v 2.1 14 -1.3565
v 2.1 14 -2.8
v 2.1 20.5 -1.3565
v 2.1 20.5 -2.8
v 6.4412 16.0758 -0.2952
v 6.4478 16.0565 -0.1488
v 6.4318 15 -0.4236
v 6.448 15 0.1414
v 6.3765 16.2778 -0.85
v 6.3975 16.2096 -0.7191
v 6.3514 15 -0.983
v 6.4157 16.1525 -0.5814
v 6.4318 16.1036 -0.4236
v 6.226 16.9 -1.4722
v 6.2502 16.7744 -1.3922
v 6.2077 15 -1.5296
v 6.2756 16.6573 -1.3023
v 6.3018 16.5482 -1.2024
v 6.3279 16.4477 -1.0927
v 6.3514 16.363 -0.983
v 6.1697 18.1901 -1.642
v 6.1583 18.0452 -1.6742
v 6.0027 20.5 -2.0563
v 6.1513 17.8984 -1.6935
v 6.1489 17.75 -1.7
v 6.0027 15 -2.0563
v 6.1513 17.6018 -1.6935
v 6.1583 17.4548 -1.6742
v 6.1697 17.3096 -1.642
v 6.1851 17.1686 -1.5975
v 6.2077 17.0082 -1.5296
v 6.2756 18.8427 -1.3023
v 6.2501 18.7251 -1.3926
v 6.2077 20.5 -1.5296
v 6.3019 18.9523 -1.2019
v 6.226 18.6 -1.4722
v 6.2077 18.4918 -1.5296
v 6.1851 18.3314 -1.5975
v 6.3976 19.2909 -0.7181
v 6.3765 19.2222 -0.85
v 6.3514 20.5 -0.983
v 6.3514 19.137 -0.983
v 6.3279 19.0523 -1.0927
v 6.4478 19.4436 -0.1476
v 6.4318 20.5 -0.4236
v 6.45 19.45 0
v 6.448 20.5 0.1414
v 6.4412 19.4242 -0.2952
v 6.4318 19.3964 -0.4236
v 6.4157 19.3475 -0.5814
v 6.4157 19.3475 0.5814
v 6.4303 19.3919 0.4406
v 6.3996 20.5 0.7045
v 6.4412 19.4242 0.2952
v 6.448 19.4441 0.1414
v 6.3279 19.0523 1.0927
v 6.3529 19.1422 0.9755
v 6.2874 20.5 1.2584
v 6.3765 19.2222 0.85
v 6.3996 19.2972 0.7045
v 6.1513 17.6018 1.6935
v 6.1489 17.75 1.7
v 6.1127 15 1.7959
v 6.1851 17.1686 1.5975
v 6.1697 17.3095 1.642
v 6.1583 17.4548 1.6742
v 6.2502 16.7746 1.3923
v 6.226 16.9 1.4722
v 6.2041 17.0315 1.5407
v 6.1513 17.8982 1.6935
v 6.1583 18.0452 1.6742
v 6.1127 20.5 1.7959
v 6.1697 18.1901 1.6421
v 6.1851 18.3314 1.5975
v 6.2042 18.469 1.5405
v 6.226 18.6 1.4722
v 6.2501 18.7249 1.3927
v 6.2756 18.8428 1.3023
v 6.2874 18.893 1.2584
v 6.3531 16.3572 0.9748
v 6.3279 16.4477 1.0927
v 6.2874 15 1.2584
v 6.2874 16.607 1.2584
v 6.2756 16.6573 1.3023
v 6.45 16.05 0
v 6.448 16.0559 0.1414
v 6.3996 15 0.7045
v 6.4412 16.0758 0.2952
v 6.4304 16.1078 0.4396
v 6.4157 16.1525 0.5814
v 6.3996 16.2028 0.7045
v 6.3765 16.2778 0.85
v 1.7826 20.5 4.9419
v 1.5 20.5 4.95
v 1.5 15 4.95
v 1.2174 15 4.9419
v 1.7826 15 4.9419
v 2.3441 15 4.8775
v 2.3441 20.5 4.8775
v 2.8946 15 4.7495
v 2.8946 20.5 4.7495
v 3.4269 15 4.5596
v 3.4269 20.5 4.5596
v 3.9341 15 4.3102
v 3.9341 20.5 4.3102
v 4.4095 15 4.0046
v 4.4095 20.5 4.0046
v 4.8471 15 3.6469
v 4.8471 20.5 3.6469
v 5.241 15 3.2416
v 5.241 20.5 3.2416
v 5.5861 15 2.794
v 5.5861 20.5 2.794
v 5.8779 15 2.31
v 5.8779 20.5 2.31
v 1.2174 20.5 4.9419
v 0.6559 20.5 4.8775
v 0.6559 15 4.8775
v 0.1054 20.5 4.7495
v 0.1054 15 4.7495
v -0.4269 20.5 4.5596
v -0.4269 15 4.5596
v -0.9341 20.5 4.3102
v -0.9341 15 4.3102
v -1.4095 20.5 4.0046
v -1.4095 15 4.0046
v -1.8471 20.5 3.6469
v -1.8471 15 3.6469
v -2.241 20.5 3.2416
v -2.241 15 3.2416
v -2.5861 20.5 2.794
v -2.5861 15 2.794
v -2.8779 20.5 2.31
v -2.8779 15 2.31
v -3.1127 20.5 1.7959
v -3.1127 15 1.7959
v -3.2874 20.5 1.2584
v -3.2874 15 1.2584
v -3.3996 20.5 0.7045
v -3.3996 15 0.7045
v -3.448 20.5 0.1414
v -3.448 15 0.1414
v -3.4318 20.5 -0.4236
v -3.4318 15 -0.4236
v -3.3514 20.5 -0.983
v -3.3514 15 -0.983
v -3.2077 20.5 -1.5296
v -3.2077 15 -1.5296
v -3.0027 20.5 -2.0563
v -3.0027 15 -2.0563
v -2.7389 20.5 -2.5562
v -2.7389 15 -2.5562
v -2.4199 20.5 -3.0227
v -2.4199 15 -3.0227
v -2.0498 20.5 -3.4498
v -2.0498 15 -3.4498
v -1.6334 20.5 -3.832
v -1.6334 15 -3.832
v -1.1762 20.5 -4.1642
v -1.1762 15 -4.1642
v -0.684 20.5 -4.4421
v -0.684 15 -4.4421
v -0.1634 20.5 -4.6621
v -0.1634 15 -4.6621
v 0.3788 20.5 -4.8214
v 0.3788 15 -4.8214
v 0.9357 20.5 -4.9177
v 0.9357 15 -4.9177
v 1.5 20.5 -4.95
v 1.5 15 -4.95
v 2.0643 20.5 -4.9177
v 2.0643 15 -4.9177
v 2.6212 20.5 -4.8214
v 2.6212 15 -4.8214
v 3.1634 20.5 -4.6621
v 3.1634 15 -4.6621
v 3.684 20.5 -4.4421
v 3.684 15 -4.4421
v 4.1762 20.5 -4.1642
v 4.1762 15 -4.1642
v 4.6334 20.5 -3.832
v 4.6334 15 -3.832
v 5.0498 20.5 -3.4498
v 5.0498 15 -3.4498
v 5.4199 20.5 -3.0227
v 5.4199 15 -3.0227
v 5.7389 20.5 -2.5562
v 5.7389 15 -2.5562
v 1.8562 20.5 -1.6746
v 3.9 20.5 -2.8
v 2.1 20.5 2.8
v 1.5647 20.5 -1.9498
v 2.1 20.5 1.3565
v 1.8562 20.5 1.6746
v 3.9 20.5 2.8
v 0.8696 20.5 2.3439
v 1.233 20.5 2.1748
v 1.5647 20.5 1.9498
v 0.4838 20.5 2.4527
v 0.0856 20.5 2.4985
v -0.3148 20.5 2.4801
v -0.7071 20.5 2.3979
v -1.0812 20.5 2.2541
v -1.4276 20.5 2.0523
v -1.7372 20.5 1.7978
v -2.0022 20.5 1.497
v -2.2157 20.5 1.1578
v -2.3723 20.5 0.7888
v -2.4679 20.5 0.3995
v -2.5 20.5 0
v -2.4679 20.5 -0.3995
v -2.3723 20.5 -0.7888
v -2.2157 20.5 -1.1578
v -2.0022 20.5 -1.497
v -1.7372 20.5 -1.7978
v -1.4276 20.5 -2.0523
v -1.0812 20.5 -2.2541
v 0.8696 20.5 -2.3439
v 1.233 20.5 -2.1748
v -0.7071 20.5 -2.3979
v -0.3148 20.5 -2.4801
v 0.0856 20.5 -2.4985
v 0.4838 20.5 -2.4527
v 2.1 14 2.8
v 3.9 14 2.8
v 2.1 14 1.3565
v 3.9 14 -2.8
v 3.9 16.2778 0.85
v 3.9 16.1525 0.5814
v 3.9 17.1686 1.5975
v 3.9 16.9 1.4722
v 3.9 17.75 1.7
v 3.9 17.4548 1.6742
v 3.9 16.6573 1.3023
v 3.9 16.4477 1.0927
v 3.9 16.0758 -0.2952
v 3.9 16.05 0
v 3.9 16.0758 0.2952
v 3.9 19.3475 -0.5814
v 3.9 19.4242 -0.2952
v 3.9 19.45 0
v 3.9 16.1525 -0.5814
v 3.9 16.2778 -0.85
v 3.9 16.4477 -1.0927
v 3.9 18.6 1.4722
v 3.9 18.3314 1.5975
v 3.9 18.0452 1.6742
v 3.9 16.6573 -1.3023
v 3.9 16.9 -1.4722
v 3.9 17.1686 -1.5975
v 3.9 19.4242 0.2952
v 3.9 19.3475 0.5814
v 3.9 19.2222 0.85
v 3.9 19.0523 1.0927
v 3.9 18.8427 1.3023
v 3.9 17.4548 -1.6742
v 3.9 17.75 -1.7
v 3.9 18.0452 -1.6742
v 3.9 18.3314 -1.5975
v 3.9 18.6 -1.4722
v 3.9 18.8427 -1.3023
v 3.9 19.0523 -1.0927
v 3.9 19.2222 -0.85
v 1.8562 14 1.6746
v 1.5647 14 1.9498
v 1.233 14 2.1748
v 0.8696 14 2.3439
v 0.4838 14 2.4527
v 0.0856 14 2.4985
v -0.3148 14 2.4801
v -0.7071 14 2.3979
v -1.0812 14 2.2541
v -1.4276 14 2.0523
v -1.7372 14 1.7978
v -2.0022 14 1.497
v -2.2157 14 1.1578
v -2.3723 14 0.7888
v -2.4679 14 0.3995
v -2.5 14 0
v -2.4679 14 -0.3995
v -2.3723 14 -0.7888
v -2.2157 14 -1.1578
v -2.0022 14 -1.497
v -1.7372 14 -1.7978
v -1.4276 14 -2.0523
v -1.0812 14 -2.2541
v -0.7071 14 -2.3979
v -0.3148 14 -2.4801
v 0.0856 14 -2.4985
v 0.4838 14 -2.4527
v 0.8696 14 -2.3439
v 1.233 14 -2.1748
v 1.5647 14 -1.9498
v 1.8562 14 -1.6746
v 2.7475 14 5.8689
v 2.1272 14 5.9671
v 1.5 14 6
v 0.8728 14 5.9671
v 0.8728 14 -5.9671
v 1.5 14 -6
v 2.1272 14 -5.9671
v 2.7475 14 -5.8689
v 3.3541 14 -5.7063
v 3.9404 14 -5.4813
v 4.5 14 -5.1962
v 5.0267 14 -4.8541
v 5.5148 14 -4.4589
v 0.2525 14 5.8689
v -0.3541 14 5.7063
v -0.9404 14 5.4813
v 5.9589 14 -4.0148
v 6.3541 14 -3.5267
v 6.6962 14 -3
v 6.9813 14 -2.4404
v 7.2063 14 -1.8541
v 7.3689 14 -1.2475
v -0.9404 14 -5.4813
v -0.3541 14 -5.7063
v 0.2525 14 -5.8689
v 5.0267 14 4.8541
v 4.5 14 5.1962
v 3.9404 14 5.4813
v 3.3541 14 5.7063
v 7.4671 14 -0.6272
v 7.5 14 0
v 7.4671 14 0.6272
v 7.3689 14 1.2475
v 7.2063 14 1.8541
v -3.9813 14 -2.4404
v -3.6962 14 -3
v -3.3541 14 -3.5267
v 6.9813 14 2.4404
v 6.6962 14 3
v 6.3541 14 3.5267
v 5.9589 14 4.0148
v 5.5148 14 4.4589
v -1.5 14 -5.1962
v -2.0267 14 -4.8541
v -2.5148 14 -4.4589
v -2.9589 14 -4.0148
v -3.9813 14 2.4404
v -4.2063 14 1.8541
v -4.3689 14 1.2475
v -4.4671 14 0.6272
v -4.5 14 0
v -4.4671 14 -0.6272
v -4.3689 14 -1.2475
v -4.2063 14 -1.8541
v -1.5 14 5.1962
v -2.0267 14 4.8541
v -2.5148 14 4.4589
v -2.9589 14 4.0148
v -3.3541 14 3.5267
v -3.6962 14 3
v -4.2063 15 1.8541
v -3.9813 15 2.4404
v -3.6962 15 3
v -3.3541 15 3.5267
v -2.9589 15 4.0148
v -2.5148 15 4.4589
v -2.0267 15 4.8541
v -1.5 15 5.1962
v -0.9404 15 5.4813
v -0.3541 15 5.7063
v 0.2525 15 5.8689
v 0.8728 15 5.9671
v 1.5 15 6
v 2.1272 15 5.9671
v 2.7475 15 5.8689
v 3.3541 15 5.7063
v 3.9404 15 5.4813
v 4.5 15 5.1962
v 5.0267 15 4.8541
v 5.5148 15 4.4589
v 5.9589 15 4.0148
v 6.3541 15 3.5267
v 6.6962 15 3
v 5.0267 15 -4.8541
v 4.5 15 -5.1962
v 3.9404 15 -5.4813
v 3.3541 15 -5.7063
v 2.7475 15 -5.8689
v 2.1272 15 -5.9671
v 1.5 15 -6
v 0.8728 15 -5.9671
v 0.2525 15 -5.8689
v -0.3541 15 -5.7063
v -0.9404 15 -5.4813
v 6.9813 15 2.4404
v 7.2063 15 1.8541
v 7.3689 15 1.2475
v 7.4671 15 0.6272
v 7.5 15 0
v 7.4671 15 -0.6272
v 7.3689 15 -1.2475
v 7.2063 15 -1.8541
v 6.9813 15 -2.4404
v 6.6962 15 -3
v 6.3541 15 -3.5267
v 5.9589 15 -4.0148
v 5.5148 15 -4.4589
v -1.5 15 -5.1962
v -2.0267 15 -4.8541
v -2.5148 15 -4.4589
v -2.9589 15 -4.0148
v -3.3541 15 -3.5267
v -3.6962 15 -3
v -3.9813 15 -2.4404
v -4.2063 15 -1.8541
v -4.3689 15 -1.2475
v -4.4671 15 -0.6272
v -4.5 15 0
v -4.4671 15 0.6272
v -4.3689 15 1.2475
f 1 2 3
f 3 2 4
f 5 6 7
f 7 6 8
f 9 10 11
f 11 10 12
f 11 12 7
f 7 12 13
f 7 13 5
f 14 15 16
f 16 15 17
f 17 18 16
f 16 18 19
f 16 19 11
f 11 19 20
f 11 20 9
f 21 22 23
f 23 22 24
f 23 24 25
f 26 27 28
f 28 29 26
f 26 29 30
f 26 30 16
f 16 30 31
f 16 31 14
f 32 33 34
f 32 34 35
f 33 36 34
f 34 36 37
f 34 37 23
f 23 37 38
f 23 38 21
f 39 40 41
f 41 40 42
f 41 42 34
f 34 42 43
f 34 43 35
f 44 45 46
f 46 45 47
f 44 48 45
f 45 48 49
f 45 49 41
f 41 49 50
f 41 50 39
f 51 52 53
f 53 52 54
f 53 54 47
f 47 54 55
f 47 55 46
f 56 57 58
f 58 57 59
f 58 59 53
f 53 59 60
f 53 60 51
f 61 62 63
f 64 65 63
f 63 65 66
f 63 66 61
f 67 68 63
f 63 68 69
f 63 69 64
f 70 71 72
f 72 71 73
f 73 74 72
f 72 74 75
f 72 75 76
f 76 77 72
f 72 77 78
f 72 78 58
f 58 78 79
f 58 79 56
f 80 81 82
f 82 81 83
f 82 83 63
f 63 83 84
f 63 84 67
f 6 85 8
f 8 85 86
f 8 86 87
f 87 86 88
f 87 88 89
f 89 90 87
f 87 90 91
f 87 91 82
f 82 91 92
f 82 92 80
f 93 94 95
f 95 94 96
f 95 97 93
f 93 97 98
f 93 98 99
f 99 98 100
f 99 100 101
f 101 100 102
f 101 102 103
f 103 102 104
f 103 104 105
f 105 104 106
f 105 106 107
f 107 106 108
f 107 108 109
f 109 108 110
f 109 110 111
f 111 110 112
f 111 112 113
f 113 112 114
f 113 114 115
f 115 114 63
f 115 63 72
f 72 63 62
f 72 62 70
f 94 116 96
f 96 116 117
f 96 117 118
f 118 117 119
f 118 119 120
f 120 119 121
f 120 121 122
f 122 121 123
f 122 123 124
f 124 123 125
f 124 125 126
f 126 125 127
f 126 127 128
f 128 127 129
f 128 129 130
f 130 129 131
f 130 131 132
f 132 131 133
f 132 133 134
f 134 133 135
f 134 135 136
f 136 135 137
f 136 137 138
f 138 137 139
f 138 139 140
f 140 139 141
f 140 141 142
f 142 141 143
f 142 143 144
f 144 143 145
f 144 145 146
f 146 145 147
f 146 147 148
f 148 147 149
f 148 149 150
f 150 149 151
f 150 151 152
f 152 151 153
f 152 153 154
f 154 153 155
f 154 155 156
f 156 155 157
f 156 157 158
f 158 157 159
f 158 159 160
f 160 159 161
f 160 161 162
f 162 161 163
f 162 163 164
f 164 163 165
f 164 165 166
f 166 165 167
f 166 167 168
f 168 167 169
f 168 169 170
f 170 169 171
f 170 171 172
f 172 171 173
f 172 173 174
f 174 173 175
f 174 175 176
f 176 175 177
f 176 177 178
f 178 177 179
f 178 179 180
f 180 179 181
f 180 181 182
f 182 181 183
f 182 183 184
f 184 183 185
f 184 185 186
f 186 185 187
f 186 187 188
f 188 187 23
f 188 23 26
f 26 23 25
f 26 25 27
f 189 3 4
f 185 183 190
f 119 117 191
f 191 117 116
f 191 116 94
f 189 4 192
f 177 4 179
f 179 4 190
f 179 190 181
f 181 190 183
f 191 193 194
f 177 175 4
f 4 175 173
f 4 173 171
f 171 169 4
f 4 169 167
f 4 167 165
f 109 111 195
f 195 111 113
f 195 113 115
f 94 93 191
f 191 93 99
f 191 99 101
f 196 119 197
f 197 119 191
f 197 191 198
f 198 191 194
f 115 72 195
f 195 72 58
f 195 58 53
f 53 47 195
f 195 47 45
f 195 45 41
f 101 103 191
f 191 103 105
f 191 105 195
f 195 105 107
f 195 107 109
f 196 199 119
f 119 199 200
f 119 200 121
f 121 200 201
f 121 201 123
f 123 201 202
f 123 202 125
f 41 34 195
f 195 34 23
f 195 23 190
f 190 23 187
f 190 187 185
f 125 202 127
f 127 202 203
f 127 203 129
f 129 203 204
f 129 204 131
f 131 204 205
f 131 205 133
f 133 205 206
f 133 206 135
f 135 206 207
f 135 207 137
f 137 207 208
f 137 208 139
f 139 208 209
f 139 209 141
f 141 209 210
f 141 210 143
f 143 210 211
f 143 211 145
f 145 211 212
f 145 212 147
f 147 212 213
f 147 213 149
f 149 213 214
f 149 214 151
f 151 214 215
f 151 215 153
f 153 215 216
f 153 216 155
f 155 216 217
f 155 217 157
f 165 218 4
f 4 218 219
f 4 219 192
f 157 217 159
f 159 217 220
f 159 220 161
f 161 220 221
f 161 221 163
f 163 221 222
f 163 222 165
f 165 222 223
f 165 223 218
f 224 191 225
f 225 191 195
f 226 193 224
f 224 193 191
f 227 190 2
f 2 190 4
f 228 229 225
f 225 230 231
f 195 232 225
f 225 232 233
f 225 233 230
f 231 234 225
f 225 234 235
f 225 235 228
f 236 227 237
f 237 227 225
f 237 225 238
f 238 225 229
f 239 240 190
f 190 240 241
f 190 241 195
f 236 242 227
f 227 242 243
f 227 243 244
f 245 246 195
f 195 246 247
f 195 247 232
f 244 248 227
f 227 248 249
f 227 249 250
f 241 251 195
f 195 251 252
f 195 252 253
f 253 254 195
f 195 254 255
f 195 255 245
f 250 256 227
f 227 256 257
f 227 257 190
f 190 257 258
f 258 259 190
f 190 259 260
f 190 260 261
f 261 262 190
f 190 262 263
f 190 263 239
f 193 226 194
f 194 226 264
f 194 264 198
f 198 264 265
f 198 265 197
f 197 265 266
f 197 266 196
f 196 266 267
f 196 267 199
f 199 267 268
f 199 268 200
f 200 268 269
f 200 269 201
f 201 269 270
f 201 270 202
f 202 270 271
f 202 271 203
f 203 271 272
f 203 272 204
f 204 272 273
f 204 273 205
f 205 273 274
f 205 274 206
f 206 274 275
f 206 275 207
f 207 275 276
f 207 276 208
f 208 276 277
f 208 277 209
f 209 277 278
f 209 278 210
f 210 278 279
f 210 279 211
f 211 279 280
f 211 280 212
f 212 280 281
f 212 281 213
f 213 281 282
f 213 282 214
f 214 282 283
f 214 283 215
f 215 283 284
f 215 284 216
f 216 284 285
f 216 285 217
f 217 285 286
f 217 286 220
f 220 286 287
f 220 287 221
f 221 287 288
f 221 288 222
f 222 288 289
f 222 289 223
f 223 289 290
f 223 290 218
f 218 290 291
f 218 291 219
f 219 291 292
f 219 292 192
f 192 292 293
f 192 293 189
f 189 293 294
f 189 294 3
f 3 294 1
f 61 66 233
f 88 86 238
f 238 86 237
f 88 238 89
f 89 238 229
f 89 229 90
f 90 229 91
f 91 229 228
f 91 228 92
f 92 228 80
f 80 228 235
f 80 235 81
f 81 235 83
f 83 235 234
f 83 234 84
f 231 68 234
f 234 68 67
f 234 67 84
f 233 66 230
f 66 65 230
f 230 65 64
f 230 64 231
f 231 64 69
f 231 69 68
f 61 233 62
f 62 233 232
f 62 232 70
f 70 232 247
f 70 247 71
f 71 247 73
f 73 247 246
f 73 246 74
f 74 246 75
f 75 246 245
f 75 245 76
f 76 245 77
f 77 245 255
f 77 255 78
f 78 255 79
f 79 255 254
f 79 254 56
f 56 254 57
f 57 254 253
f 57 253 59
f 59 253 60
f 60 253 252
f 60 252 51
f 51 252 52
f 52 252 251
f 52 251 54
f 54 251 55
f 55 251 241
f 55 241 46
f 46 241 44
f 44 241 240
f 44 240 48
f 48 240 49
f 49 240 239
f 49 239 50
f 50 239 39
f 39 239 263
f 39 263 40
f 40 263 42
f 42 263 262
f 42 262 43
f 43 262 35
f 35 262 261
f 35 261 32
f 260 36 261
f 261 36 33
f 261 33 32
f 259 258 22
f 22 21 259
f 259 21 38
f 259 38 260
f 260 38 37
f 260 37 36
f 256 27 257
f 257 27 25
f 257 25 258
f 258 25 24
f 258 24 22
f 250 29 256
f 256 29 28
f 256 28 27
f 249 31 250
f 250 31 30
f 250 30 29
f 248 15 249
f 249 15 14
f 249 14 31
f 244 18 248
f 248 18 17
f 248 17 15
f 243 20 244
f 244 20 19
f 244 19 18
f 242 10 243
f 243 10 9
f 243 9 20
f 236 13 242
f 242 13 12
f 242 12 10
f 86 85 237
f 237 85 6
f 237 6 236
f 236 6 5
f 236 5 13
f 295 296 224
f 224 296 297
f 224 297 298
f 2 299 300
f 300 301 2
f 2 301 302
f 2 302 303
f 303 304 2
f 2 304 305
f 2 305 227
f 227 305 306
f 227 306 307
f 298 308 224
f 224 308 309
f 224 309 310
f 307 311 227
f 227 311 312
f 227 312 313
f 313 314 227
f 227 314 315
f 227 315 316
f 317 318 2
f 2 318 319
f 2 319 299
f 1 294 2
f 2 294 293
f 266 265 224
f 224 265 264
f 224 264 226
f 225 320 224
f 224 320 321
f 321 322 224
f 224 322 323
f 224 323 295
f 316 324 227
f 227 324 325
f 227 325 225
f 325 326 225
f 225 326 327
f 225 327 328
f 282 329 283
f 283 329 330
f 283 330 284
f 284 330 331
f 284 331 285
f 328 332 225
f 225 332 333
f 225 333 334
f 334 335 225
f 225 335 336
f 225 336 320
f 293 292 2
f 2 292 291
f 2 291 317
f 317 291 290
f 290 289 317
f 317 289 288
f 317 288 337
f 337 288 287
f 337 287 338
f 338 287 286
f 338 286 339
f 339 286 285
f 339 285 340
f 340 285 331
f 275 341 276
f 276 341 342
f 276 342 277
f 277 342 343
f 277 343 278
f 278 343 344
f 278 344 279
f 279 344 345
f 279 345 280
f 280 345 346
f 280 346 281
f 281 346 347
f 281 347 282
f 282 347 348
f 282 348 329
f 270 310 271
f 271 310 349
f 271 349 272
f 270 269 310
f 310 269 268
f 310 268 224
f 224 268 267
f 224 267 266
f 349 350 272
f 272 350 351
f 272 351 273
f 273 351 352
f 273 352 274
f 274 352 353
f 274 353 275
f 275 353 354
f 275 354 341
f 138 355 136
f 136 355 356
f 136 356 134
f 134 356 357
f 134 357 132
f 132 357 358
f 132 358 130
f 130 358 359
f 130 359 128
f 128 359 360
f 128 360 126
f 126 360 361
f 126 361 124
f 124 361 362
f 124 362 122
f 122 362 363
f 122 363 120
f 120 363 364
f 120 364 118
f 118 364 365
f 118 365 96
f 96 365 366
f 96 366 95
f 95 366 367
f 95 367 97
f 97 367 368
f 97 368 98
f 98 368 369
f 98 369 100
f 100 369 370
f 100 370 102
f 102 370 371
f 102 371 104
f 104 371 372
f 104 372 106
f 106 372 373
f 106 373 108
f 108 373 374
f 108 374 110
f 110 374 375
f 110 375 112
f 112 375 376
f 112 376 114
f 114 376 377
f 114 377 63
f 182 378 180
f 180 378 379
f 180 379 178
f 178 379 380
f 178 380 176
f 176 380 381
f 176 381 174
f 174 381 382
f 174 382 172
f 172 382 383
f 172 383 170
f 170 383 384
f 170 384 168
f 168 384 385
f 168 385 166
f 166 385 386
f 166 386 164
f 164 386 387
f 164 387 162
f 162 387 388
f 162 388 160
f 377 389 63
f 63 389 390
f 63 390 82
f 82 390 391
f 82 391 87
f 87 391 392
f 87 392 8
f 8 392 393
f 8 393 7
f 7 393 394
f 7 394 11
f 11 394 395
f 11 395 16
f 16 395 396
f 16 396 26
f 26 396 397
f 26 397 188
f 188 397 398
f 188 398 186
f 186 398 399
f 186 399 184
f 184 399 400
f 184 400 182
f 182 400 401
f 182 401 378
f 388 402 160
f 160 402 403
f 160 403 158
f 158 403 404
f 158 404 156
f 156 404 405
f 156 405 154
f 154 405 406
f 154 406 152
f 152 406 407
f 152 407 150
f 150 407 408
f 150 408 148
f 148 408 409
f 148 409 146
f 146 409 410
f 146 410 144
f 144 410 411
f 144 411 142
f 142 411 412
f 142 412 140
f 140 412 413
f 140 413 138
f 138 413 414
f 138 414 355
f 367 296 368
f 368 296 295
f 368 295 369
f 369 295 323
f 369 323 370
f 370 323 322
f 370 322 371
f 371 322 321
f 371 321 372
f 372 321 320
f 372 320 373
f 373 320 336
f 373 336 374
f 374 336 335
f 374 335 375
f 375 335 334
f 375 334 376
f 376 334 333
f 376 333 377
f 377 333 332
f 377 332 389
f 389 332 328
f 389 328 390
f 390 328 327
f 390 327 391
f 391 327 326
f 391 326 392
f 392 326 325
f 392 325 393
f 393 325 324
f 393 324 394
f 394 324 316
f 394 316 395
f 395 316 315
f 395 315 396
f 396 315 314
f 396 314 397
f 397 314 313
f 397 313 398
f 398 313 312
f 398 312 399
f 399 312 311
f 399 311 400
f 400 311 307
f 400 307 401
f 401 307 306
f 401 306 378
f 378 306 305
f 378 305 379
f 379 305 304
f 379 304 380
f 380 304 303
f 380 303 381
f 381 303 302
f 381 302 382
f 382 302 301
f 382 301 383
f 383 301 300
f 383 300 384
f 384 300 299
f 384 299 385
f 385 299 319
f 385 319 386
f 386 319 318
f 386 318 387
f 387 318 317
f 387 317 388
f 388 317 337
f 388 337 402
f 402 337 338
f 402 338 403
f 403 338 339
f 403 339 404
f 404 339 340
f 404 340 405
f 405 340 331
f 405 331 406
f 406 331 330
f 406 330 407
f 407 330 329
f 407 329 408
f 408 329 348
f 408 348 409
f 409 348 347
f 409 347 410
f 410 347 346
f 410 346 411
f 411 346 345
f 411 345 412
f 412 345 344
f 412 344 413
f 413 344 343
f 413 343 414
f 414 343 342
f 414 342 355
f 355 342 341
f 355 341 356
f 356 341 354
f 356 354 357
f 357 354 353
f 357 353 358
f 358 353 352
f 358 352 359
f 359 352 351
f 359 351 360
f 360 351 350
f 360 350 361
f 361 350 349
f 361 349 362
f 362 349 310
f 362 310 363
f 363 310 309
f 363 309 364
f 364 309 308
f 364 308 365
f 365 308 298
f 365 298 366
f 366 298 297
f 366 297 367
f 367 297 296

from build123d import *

# Parameters (mm, degrees)
SKETCH1_R           = 2.5
BOSS_EXTRUDE1_DEPTH = 15
SKETCH2_R           = 4.95
BOSS_EXTRUDE2_DEPTH = 5.5
SKETCH7_W           = 1.8
SKETCH7_H           = 5.6
CUT_EXTRUDE3_DEPTH  = 5.5
SKETCH10_R          = 2.5
CUT_EXTRUDE4_DEPTH  = 23.053457779
SKETCH13_W          = 1.7
SKETCH13_H          = 2.55
BOSS_EXTRUDE5_START = 1
SKETCH14_R          = 6
BOSS_EXTRUDE5_DEPTH = 1


with BuildPart() as part:
    # Sketch1 → Boss-Extrude1 (new body)
    with BuildSketch(Plane(origin=(0, 0, 0), x_dir=(1, 0, 0), z_dir=(0, 1, 0))):
        with Locations(Location((0, 0, 0), (0, 0, 270))):
            Circle(SKETCH1_R)
    extrude(amount=BOSS_EXTRUDE1_DEPTH)

    # Sketch2 → Boss-Extrude2 (add)
    with BuildSketch(Plane(origin=(0, 15, 0), x_dir=(1, 0, 0), z_dir=(0, 1, 0))):
        with Locations(Location((1.5, 0, 0), (0, 0, 270))):
            Circle(SKETCH2_R)
    extrude(amount=BOSS_EXTRUDE2_DEPTH)

    # Sketch7 → Cut-Extrude3 (cut)
    with BuildSketch(Plane.XZ.offset(-15)):
        with Locations((3, 0)):
            Rectangle(SKETCH7_W, SKETCH7_H)
    extrude(amount=-CUT_EXTRUDE3_DEPTH, mode=Mode.SUBTRACT)

    # Sketch10 → Cut-Extrude4 (cut, through all)
    with BuildSketch(Plane.XZ):
        Circle(SKETCH10_R)
    extrude(amount=-CUT_EXTRUDE4_DEPTH, mode=Mode.SUBTRACT)

    # Sketch13 → M3 Clearance Hole1 (revolve, cut)
    with BuildSketch(Plane(origin=(3.9, 17.75, 0), x_dir=(0, 0, 1), z_dir=(0, 1, 0))):
        with Locations((0.85, 1.275)):
            Rectangle(SKETCH13_W, SKETCH13_H)
    revolve(axis=Axis((-2.45, 17.75, 0), (1, 0, 0)), mode=Mode.SUBTRACT)

    # Sketch14 → Boss-Extrude5 (add)
    with BuildSketch(Plane.XZ.offset(-15).offset(BOSS_EXTRUDE5_START)):
        with Locations(Location((1.5, 0, 0), (0, 0, 270))):
            Circle(SKETCH14_R)
        with BuildLine():
            Line((2.1, 2.8), (2.1, 1.356465997))
            ThreePointArc((2.1, 1.356465997), (-2.5, 0), (2.1, -1.356465997))
            Line((2.1, -1.356465997), (2.1, -2.8))
            Line((2.1, -2.8), (3.9, -2.8))
            Line((3.9, -2.8), (3.9, 2.8))
            Line((3.9, 2.8), (2.1, 2.8))
        make_face(mode=Mode.SUBTRACT)
    extrude(amount=-BOSS_EXTRUDE5_DEPTH)


solid = part.part
